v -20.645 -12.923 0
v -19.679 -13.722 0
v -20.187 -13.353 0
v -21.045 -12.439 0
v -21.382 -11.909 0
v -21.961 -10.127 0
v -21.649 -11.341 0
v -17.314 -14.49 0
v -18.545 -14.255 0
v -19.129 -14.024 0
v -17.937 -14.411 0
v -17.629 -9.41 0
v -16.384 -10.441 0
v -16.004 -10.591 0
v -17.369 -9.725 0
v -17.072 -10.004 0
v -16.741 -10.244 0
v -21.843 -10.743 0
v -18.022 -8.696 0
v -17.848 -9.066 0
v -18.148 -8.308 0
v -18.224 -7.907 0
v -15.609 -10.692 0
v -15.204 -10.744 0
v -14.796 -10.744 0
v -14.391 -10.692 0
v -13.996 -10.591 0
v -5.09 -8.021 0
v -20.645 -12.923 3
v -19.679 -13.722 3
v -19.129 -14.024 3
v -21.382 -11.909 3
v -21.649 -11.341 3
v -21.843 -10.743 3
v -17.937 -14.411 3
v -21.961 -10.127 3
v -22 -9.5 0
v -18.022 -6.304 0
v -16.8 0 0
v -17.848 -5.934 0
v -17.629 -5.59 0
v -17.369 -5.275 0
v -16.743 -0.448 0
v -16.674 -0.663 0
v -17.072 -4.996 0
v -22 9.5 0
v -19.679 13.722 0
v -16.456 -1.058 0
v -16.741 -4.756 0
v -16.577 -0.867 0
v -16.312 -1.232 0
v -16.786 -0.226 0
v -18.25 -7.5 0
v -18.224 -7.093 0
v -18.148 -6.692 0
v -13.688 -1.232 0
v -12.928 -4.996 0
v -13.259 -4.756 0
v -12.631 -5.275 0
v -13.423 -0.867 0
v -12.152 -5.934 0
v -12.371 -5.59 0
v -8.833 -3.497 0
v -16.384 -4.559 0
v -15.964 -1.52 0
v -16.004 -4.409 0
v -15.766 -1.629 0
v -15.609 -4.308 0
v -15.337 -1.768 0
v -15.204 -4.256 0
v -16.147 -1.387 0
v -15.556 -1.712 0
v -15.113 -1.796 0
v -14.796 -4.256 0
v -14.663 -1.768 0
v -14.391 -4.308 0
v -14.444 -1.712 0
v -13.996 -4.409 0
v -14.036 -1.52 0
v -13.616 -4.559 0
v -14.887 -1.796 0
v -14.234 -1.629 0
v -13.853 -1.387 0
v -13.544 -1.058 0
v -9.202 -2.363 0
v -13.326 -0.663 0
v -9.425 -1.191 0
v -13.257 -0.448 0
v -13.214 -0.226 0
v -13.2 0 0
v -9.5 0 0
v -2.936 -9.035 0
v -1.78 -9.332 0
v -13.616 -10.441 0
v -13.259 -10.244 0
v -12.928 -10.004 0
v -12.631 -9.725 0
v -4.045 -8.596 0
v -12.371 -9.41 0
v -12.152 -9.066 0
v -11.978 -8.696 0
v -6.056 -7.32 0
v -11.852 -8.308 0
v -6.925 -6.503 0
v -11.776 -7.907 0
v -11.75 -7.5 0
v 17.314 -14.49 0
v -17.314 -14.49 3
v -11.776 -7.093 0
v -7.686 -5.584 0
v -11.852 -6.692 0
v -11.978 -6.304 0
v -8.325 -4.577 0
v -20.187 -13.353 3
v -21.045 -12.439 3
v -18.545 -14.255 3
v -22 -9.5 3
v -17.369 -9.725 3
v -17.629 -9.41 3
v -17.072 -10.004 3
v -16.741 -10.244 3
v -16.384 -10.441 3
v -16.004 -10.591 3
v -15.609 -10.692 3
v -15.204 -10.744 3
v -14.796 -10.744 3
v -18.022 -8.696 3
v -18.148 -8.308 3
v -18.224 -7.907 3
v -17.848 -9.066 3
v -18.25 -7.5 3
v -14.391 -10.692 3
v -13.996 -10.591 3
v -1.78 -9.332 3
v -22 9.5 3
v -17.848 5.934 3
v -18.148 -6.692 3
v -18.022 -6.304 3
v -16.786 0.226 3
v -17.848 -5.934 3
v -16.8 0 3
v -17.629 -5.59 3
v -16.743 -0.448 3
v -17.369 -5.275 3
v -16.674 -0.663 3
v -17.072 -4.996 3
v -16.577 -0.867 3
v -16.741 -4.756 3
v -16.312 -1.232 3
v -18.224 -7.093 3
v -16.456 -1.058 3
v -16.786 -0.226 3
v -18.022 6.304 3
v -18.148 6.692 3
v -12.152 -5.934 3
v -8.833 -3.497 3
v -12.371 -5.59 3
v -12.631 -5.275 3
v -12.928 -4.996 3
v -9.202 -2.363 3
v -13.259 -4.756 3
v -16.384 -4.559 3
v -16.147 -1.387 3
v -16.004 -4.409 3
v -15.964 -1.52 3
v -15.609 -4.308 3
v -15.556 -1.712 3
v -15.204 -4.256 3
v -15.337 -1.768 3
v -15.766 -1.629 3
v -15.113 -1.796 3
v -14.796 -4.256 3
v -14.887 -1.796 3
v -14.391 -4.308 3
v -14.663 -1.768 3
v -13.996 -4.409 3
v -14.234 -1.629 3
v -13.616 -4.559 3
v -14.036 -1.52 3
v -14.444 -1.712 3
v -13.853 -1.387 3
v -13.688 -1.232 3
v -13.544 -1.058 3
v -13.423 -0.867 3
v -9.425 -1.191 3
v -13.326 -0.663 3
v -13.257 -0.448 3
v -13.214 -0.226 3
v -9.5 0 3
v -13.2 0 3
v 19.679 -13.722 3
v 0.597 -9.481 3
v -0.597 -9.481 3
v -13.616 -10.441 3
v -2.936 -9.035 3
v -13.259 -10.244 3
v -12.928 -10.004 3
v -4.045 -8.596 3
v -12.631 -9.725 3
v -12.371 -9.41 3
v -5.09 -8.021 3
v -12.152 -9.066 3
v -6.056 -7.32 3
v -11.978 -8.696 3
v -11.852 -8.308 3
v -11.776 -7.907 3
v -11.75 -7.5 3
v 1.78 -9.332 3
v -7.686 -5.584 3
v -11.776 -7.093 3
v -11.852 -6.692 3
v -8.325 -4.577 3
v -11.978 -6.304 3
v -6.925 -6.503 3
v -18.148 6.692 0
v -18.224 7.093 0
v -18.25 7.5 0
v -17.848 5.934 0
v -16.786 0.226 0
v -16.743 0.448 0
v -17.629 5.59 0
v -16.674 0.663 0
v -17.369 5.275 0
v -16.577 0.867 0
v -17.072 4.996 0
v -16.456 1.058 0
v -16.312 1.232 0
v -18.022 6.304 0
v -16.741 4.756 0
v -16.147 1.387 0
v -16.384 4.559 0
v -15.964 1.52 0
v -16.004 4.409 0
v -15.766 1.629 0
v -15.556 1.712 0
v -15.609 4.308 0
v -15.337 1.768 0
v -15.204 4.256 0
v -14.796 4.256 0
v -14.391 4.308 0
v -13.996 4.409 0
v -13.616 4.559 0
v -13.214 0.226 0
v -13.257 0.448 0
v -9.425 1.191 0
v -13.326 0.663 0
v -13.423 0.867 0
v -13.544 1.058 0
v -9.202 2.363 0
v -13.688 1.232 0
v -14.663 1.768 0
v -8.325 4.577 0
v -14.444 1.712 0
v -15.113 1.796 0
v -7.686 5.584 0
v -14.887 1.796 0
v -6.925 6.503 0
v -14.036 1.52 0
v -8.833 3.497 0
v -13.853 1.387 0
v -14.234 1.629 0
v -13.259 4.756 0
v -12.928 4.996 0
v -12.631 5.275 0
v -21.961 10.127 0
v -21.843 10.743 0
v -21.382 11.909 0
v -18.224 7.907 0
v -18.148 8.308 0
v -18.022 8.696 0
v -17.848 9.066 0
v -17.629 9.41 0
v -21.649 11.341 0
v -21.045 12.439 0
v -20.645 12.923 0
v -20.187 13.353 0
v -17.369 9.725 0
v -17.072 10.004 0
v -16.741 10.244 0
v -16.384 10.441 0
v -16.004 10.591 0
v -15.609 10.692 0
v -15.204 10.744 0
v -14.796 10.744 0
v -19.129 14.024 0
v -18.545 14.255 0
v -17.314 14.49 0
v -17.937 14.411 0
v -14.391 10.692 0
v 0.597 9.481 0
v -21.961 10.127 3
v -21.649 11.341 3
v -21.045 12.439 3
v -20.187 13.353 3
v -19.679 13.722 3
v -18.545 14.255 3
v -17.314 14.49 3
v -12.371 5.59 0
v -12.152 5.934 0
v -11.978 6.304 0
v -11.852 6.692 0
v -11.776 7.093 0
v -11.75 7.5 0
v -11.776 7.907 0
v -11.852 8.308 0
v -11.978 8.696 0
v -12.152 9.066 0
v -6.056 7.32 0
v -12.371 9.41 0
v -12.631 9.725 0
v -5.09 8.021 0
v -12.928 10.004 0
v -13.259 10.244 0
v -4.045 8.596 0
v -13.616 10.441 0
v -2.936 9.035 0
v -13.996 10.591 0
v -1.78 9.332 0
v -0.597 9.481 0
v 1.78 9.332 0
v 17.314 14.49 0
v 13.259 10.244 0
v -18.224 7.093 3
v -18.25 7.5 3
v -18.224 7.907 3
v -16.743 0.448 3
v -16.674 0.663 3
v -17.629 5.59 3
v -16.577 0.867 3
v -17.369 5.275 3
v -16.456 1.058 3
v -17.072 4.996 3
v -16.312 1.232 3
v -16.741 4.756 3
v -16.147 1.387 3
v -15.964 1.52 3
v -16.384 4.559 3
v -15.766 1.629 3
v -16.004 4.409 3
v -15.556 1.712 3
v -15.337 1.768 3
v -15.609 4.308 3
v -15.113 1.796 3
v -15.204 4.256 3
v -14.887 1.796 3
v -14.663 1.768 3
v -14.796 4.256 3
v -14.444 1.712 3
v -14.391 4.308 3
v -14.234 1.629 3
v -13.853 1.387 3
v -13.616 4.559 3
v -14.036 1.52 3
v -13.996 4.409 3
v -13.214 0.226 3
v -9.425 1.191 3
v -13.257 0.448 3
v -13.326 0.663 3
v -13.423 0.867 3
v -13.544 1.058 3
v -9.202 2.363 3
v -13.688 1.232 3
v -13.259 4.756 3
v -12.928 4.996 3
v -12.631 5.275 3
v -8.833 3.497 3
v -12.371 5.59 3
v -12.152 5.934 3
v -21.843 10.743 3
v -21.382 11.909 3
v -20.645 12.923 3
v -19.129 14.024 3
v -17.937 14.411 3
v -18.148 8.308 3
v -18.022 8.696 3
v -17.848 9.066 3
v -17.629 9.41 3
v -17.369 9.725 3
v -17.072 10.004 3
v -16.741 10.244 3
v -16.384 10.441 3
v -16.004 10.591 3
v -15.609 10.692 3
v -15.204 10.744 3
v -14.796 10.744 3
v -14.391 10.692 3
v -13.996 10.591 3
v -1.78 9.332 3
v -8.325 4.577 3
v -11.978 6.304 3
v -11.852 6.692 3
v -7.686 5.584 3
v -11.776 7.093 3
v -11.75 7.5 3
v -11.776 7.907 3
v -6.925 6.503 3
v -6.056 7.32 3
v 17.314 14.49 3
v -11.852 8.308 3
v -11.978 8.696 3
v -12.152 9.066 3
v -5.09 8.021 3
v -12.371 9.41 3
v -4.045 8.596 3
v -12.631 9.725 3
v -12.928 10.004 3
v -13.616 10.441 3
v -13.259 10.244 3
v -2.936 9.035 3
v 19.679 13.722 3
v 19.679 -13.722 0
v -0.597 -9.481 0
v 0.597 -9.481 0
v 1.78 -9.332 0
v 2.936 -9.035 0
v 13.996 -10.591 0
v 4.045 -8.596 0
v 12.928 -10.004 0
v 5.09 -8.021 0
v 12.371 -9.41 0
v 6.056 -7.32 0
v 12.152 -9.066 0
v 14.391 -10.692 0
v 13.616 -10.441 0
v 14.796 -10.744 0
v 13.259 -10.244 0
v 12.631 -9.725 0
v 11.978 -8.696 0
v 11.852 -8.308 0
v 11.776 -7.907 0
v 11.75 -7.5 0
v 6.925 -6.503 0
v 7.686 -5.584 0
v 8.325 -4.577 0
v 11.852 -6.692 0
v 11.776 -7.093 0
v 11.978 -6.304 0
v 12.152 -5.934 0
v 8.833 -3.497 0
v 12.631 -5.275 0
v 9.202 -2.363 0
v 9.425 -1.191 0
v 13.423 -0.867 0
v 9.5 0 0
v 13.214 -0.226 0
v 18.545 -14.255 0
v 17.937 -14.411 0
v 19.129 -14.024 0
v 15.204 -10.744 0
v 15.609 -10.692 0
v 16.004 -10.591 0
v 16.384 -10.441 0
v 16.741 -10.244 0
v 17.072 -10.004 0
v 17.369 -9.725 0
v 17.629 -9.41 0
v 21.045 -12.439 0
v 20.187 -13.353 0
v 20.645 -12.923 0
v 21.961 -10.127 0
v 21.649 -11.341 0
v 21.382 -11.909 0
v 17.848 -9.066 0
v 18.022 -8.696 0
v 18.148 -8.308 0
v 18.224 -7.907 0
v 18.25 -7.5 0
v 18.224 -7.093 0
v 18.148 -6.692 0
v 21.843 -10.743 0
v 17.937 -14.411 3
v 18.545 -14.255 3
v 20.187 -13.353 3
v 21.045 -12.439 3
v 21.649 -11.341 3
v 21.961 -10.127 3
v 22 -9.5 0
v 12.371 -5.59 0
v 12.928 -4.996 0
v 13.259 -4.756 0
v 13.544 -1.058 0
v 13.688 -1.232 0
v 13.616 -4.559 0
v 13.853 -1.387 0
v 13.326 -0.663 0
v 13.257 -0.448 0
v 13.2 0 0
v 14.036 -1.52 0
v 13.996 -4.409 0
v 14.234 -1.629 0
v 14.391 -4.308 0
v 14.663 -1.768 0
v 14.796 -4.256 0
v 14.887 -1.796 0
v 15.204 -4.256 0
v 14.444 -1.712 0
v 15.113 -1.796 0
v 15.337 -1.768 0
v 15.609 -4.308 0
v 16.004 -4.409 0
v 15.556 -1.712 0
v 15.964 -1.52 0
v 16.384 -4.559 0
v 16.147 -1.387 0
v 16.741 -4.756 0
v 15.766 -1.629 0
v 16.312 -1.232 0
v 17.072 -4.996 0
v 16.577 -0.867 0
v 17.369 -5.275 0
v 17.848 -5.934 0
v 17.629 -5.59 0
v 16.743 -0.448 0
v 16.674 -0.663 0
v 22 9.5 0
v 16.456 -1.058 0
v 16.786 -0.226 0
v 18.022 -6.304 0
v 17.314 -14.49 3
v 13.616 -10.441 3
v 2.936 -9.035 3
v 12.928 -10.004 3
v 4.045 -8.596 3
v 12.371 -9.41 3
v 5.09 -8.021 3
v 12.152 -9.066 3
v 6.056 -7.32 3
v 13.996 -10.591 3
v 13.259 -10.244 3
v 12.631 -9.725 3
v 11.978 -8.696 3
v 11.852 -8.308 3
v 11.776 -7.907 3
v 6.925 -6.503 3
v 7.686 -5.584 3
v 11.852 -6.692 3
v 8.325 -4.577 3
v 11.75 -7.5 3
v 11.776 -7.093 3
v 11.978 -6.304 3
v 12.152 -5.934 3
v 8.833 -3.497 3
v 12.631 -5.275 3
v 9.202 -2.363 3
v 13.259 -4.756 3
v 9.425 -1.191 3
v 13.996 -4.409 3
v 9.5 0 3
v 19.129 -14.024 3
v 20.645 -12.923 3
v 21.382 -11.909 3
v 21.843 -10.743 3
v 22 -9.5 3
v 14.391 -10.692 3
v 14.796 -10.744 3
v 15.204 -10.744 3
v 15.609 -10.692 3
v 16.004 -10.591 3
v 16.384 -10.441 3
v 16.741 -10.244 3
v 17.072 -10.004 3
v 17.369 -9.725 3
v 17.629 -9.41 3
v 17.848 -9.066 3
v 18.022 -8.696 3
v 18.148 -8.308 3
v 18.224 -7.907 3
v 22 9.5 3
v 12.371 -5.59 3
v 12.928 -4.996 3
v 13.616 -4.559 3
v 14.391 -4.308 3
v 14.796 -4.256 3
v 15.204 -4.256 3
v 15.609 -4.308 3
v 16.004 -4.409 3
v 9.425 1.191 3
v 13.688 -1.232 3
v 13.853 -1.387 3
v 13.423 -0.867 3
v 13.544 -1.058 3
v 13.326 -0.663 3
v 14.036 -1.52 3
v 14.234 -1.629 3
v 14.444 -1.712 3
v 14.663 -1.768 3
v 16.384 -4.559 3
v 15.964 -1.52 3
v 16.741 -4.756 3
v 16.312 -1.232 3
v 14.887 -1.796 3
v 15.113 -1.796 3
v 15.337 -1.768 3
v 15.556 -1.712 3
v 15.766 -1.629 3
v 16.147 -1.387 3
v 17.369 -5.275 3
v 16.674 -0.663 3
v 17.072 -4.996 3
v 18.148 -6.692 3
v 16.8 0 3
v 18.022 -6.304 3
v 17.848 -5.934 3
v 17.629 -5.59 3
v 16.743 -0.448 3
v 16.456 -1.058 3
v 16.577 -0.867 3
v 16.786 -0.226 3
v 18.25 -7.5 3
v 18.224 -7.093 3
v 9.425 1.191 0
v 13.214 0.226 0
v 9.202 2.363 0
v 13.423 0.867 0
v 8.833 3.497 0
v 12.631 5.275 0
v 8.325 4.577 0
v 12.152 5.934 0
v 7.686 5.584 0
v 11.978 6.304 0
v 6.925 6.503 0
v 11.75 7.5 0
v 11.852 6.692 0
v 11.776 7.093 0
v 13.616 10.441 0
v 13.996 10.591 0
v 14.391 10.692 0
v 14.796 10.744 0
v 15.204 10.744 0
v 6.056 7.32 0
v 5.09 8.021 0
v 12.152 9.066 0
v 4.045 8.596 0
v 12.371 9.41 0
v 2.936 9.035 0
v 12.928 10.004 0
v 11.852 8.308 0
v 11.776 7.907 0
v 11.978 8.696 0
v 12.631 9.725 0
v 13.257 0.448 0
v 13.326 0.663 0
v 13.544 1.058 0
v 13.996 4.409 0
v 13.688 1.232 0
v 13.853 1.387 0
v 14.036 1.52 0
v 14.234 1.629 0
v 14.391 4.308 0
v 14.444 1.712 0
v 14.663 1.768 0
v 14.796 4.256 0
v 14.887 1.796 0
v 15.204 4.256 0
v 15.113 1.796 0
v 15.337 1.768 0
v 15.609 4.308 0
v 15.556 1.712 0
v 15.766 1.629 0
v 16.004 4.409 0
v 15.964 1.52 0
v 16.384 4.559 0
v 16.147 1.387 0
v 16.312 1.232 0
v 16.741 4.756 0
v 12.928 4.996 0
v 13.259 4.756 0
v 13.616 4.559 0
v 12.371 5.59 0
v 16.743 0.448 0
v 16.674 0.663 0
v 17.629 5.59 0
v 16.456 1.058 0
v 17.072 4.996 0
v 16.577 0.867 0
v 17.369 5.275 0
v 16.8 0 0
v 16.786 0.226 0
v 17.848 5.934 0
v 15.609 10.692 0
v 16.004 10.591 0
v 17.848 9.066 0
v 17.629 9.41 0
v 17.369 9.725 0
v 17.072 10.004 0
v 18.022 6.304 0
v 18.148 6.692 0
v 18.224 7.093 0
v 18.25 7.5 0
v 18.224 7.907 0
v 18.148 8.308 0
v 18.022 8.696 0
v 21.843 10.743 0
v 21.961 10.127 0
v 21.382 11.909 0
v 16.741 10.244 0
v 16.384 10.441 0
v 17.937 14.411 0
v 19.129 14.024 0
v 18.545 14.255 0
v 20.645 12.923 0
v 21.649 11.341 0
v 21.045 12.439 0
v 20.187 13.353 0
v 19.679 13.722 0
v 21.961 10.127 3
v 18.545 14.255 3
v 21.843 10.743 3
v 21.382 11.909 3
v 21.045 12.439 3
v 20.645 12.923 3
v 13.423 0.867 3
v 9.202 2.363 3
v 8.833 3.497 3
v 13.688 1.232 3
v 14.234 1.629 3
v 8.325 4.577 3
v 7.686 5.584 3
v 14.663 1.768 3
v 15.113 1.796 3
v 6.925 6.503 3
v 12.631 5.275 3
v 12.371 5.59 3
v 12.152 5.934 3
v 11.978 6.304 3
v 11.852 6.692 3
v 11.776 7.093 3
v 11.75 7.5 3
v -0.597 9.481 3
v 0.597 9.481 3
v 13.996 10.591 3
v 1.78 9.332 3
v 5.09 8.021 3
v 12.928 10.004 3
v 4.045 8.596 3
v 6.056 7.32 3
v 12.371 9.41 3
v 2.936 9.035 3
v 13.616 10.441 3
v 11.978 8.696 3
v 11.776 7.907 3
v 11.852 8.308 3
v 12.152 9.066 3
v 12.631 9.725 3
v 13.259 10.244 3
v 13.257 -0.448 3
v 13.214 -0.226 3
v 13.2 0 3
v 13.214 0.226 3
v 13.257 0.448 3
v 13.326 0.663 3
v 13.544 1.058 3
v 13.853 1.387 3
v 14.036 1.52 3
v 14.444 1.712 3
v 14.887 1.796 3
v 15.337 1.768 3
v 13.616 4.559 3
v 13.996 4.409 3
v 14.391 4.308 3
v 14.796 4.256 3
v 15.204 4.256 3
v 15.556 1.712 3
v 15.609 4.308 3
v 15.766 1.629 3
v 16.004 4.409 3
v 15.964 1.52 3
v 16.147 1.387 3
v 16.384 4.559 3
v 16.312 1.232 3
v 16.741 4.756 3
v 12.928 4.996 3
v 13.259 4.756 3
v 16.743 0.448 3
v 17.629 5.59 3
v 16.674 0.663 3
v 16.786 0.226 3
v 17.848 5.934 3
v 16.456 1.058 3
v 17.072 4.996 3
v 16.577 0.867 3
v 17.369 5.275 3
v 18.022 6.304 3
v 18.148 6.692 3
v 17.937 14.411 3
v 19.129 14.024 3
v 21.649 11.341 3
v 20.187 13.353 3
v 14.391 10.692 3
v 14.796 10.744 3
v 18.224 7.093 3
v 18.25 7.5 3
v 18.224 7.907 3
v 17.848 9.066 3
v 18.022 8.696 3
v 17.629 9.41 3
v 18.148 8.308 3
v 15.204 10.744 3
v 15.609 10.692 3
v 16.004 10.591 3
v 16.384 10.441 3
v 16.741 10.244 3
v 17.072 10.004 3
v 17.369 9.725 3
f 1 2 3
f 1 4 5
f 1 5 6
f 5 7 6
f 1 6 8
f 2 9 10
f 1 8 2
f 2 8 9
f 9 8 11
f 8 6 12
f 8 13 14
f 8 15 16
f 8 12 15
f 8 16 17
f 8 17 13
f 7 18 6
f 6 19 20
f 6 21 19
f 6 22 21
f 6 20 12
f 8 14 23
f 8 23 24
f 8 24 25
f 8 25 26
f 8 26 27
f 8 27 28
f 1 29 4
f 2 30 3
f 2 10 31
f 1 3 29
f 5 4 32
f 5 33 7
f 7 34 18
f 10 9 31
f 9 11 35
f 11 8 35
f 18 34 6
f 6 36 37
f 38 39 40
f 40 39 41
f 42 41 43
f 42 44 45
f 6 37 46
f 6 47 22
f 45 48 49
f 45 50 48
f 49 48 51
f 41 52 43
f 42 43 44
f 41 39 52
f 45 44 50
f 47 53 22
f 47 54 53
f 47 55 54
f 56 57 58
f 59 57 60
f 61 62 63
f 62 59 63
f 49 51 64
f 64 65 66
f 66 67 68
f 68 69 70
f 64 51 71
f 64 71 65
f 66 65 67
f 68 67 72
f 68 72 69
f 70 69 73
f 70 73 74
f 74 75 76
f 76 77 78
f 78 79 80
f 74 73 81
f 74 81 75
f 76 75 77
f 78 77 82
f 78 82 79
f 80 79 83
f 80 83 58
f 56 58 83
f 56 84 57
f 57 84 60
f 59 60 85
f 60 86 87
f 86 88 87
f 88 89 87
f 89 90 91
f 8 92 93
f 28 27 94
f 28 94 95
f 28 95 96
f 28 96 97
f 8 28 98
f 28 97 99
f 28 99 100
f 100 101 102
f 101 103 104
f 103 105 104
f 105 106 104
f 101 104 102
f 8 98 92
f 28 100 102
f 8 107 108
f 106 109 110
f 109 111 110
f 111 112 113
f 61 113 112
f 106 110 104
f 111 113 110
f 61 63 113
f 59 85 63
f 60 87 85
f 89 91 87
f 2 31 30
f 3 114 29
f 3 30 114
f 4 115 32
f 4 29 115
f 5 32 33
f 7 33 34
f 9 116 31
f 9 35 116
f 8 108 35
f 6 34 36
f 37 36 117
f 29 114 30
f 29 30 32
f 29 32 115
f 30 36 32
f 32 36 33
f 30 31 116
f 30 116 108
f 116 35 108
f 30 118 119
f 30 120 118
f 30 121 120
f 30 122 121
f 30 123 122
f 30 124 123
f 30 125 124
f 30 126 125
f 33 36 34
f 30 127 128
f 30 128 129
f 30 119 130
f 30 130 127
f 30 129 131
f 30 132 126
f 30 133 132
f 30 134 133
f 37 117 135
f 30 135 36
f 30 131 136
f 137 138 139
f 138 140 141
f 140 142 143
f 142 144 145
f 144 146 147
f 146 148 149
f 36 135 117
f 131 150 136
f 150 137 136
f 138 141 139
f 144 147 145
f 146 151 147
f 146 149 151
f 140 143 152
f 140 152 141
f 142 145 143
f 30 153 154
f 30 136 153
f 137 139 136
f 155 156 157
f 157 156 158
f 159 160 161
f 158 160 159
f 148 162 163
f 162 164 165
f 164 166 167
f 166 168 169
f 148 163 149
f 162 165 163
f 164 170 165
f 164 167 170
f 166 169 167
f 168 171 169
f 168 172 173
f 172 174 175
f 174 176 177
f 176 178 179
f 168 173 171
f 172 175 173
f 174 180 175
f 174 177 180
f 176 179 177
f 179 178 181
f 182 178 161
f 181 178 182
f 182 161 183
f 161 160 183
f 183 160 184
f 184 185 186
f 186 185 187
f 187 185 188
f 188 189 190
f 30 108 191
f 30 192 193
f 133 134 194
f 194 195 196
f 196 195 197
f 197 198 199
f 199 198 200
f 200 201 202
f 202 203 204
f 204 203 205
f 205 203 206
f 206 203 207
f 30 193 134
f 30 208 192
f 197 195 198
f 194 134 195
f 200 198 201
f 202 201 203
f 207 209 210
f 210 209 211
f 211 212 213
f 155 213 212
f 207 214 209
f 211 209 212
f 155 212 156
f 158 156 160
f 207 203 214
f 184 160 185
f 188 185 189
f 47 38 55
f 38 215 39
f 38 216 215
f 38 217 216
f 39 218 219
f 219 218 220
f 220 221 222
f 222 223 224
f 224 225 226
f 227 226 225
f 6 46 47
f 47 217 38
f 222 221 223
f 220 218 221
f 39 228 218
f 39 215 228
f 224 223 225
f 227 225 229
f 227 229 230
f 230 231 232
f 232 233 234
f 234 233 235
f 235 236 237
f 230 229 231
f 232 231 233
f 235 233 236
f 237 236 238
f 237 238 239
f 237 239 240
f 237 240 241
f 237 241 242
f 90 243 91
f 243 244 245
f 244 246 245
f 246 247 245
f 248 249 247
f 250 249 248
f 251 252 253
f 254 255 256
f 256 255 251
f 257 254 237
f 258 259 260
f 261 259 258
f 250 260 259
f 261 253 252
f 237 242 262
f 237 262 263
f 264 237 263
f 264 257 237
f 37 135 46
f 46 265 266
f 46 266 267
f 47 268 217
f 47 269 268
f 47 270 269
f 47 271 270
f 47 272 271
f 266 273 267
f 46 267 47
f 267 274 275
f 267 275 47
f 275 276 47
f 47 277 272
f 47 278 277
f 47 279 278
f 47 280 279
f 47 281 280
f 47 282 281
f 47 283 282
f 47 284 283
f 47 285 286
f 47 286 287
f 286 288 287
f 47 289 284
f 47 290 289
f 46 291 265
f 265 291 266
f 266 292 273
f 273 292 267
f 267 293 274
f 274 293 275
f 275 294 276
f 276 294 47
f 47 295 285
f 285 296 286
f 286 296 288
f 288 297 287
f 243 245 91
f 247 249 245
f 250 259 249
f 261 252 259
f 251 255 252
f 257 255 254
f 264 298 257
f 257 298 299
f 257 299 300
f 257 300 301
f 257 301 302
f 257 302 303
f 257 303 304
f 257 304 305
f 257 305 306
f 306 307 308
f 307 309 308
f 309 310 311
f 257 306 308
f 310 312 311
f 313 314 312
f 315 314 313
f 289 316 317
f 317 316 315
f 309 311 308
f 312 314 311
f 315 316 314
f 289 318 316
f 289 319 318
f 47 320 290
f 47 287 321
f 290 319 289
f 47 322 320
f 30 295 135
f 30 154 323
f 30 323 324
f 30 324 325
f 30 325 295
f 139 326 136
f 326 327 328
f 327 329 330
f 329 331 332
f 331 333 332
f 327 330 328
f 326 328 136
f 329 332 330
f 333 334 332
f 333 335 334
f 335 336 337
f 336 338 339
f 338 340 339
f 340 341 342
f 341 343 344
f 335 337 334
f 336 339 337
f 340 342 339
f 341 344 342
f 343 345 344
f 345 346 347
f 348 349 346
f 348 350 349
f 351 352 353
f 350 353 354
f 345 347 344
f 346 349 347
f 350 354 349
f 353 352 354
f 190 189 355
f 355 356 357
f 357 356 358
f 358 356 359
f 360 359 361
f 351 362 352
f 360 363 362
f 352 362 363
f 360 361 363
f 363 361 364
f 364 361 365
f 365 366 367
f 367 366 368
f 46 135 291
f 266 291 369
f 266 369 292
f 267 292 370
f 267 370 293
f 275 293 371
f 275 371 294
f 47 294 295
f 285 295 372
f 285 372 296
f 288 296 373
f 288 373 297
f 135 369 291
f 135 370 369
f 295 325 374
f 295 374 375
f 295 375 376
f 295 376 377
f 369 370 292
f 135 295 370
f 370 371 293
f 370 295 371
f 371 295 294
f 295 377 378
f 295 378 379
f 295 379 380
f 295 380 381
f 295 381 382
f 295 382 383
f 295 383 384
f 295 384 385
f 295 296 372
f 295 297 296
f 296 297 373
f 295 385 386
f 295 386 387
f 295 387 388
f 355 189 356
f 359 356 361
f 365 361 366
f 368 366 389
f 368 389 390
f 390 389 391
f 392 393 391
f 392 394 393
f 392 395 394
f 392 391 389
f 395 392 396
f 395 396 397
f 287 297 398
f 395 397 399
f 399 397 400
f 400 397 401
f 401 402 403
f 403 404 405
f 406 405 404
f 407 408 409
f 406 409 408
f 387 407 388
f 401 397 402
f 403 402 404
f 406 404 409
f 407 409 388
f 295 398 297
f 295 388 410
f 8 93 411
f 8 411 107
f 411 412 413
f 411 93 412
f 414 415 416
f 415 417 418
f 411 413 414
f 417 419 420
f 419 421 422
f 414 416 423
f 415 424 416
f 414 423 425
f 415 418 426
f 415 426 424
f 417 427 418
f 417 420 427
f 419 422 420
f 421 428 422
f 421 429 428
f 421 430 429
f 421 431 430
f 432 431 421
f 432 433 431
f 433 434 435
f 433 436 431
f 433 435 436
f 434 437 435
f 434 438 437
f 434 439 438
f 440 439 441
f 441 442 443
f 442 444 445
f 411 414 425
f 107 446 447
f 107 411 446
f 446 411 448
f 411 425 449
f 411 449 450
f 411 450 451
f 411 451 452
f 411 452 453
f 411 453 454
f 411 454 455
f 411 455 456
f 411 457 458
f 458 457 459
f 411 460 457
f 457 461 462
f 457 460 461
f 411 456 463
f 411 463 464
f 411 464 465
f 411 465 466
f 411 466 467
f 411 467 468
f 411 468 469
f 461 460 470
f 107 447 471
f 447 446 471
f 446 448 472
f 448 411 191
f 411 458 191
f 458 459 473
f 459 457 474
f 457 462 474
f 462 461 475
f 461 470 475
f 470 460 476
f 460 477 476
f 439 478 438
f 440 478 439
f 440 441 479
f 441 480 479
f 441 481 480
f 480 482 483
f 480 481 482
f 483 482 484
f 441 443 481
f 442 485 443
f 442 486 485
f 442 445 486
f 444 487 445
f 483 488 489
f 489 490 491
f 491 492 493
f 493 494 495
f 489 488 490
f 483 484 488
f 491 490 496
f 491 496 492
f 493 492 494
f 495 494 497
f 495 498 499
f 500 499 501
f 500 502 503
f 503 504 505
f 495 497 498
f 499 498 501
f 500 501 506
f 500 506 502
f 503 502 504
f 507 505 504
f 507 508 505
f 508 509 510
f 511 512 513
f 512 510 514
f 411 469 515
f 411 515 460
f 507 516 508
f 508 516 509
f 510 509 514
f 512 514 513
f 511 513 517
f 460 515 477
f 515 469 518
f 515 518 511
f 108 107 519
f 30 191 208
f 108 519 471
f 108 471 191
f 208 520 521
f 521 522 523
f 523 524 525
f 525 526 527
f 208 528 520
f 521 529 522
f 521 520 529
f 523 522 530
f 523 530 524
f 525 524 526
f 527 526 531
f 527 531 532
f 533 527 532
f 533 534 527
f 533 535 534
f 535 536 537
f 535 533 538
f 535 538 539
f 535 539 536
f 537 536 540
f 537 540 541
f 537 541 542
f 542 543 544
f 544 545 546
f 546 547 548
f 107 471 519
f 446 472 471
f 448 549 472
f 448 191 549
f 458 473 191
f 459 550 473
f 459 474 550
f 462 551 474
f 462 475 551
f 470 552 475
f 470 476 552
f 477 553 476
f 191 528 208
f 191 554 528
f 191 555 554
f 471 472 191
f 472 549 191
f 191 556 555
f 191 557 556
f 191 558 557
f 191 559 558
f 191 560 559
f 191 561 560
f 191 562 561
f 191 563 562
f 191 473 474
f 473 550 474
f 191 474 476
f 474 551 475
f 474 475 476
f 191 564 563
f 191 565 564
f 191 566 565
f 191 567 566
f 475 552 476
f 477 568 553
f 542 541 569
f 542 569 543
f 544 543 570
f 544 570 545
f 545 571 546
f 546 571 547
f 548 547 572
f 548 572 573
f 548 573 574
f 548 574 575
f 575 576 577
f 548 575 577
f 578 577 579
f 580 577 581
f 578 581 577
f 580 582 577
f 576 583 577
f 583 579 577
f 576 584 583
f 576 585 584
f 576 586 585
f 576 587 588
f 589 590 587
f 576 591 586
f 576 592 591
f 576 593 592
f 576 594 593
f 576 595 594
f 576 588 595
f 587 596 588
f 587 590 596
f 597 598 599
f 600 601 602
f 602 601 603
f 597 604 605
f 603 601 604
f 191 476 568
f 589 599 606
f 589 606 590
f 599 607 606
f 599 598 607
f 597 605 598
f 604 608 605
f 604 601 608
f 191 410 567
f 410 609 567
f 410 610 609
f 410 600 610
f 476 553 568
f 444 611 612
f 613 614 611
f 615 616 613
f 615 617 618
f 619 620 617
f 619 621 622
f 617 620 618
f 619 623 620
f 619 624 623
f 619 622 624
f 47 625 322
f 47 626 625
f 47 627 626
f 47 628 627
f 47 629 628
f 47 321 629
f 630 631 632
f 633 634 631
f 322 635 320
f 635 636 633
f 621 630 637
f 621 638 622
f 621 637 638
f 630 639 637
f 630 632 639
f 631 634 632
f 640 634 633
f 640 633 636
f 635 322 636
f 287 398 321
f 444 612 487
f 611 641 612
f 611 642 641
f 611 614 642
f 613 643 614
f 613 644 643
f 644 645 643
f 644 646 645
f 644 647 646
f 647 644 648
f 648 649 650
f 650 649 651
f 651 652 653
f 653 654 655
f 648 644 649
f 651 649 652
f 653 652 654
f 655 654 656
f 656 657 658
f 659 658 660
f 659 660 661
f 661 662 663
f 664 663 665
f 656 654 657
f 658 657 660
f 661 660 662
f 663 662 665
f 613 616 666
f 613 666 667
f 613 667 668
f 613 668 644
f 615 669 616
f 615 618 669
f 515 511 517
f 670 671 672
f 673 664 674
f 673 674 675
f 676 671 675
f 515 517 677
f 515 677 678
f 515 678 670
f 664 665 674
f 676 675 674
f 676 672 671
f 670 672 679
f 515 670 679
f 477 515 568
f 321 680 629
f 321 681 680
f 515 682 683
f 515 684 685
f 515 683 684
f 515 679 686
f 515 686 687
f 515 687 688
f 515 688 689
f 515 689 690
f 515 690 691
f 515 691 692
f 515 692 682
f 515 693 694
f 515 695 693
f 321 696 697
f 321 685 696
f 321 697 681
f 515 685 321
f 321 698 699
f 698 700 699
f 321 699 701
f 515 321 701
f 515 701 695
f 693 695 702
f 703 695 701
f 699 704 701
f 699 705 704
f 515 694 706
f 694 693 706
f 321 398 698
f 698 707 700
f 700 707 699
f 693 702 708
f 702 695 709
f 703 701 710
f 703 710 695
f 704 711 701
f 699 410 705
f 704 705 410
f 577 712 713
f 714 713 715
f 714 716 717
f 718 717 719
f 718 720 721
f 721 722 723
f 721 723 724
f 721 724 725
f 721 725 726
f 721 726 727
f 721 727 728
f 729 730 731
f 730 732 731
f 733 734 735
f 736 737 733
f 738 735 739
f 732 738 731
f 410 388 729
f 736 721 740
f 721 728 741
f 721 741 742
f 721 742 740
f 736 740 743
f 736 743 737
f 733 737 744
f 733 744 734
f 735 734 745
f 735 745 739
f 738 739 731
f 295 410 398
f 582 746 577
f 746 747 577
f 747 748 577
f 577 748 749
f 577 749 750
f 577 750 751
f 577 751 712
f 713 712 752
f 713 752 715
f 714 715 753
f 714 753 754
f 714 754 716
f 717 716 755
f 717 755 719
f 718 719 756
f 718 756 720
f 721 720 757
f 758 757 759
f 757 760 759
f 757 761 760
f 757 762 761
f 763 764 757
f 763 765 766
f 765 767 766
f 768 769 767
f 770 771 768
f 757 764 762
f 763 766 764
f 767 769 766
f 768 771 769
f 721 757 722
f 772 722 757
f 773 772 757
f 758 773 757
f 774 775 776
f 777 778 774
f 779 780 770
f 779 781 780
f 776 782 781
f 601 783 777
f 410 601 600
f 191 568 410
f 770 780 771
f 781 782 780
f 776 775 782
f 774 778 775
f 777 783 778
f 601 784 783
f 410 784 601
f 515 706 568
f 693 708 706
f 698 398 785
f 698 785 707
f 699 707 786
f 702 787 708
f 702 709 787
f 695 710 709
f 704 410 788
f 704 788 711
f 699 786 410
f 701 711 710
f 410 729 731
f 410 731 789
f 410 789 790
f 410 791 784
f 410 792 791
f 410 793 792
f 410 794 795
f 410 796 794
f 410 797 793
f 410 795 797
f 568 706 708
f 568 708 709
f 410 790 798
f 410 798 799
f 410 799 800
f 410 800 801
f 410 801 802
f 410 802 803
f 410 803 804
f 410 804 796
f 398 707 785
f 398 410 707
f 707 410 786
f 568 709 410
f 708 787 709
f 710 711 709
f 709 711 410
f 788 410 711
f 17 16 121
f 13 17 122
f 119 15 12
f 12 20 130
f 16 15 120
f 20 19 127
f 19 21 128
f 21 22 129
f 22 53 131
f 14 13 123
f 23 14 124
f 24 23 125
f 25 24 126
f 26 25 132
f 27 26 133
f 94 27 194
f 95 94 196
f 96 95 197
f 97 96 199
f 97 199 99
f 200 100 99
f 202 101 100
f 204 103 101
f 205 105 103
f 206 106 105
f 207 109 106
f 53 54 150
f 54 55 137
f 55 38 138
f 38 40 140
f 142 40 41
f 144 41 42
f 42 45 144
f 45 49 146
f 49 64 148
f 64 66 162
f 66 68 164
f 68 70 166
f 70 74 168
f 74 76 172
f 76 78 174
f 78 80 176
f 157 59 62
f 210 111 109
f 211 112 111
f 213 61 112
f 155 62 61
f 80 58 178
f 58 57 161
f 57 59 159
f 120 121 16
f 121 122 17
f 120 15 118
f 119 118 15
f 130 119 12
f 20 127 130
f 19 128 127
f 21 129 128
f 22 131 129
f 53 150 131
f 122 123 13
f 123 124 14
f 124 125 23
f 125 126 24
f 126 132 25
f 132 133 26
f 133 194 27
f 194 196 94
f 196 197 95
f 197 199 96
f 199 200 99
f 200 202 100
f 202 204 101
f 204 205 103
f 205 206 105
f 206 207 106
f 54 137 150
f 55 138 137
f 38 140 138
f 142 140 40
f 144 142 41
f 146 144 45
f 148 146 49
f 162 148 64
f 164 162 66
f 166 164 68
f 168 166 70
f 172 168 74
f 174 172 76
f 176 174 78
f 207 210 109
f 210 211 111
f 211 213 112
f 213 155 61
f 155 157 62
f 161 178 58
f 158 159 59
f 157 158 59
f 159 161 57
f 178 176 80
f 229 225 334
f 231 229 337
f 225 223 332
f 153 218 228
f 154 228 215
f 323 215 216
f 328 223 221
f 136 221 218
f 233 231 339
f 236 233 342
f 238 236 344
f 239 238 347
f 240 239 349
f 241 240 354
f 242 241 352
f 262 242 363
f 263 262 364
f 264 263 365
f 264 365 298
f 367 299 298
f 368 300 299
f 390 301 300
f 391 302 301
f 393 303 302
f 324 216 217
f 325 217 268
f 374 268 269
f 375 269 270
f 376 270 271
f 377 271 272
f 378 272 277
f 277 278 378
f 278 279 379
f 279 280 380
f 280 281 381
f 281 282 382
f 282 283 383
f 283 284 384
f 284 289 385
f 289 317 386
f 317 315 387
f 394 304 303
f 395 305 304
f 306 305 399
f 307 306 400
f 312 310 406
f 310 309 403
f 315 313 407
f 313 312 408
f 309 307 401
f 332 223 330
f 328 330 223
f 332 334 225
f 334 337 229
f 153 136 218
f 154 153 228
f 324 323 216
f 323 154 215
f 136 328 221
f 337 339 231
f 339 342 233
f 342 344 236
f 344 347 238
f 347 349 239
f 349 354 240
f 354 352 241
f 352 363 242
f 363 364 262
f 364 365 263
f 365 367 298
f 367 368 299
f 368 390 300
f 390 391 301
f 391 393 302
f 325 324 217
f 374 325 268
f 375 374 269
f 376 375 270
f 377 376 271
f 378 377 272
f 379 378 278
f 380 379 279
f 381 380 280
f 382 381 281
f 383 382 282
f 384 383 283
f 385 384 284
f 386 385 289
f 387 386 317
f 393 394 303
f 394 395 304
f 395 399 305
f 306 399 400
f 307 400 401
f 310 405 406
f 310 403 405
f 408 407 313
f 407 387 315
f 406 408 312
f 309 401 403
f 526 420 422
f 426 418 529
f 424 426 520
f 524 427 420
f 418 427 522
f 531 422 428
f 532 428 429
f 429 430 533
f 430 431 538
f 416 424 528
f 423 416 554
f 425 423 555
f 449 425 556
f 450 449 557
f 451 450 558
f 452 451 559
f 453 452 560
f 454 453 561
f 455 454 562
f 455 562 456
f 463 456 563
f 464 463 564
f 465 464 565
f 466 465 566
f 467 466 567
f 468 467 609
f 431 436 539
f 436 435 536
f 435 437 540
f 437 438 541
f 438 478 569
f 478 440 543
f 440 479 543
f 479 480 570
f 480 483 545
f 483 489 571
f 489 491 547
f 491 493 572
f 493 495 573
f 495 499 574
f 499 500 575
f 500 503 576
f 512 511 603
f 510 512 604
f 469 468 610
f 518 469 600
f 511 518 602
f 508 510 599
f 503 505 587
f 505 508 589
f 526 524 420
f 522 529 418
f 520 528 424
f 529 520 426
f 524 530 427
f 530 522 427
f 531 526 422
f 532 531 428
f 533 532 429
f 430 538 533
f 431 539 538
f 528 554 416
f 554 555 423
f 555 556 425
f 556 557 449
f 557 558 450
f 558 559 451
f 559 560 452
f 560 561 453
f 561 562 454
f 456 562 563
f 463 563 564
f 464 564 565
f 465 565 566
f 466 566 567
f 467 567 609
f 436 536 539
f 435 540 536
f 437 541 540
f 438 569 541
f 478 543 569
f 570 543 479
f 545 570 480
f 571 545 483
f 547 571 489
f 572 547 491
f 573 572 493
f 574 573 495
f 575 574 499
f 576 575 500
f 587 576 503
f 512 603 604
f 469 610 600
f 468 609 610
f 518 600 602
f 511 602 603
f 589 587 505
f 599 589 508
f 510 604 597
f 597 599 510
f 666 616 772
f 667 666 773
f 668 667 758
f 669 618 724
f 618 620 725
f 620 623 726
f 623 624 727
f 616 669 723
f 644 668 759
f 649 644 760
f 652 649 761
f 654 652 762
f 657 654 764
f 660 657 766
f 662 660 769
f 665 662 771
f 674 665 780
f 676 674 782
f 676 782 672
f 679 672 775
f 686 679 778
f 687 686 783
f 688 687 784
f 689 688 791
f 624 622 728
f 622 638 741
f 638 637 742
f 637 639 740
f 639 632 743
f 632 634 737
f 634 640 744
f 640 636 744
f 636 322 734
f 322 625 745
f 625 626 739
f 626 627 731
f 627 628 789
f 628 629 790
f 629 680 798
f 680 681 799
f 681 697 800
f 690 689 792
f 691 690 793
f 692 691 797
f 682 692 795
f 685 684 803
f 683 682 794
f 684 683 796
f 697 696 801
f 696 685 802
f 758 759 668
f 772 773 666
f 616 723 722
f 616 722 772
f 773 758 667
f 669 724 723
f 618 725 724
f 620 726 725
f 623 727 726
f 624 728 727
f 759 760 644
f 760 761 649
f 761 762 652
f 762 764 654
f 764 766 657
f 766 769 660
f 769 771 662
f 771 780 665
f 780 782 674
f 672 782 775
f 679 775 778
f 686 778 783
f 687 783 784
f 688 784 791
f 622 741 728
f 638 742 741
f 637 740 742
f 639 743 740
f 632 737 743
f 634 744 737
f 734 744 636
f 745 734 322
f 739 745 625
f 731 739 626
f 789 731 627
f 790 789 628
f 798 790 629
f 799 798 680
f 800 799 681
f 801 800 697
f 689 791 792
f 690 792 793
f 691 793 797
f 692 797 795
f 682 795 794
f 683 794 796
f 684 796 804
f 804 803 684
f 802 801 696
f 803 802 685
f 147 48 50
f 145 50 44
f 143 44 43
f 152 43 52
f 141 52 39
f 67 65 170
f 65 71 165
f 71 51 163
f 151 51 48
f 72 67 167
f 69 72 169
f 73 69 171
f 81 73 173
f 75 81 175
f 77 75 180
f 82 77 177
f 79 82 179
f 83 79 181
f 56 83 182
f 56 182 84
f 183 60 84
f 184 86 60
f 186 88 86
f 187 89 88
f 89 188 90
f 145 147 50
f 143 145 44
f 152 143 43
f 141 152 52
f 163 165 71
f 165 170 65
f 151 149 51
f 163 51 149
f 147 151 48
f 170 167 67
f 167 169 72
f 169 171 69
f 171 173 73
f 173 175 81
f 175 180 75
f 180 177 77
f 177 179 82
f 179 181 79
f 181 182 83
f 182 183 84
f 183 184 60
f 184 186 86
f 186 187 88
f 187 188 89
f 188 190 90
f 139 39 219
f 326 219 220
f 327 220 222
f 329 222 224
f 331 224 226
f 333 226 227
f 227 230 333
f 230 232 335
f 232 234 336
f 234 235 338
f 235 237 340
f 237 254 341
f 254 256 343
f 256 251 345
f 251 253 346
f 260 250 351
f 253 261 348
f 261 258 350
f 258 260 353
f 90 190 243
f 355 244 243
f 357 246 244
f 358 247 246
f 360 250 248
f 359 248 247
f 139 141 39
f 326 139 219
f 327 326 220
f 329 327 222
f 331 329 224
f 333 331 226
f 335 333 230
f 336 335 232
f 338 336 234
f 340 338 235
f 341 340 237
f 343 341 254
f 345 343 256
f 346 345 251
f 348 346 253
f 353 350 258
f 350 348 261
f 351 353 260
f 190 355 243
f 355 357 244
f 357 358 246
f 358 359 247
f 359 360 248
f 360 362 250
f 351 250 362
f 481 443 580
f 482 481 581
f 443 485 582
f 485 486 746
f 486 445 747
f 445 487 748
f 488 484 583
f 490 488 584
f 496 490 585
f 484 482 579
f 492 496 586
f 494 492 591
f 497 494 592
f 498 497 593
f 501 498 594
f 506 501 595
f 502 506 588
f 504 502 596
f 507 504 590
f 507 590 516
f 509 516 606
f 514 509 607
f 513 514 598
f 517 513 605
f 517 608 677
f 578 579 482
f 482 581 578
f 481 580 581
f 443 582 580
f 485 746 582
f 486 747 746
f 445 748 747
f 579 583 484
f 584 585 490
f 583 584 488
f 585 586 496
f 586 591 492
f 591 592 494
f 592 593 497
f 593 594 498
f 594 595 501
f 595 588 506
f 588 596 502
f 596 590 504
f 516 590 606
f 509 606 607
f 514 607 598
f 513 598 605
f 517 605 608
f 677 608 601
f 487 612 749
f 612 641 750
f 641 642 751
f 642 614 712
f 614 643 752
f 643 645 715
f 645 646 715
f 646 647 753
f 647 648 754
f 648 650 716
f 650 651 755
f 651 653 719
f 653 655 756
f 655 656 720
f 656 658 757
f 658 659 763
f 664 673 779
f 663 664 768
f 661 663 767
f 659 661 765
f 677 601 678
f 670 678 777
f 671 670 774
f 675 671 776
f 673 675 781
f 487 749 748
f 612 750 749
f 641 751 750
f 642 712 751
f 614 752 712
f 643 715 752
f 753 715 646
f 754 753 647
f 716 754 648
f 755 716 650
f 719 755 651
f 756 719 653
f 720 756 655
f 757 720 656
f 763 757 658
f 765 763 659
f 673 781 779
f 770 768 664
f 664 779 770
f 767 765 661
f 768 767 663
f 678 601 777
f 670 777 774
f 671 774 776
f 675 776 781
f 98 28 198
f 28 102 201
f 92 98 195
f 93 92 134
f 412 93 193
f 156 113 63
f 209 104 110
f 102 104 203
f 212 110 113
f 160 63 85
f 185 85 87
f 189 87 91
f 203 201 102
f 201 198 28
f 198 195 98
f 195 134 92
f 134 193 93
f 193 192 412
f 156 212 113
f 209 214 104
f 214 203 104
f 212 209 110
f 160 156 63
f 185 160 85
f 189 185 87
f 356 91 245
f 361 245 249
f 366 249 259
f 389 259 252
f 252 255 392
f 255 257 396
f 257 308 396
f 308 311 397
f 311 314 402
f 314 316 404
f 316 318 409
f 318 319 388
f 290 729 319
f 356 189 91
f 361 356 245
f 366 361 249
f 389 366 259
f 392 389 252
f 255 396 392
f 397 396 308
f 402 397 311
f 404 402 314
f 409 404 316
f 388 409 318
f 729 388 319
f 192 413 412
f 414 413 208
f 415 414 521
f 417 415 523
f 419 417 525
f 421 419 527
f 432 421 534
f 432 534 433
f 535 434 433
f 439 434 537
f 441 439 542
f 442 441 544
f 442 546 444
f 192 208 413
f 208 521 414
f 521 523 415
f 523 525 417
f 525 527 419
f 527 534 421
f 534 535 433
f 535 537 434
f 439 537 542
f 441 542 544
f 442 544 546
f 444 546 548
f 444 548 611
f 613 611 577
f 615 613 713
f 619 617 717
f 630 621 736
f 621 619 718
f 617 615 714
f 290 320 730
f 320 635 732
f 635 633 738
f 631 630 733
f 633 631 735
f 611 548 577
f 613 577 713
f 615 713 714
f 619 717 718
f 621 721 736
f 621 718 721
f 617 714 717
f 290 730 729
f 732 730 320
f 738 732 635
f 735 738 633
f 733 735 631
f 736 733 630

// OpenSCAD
$fn = 50;

difference() {
	union() {
		hull() {
			translate(v = [-17.0, 9.5, 0]) {
				cylinder(h = 3, r = 5);
			}
			translate(v = [17.0, 9.5, 0]) {
				cylinder(h = 3, r = 5);
			}
			translate(v = [-17.0, -9.5, 0]) {
				cylinder(h = 3, r = 5);
			}
			translate(v = [17.0, -9.5, 0]) {
				cylinder(h = 3, r = 5);
			}
		}
	}
	union() {
		translate(v = [-15.0, -7.5, 0]) {
			cylinder(h = 3, r = 3.25);
		}
		translate(v = [-15.0, 7.5, 0]) {
			cylinder(h = 3, r = 3.25);
		}
		translate(v = [15.0, -7.5, 0]) {
			cylinder(h = 3, r = 3.25);
		}
		translate(v = [15.0, 7.5, 0]) {
			cylinder(h = 3, r = 3.25);
		}
		translate(v = [-15.0, 0.0, 0]) {
			cylinder(h = 3, r = 1.8);
		}
		translate(v = [15.0, 0.0, 0]) {
			cylinder(h = 3, r = 1.8);
		}
		cylinder(h = 3, r = 9.5);
	}
}
